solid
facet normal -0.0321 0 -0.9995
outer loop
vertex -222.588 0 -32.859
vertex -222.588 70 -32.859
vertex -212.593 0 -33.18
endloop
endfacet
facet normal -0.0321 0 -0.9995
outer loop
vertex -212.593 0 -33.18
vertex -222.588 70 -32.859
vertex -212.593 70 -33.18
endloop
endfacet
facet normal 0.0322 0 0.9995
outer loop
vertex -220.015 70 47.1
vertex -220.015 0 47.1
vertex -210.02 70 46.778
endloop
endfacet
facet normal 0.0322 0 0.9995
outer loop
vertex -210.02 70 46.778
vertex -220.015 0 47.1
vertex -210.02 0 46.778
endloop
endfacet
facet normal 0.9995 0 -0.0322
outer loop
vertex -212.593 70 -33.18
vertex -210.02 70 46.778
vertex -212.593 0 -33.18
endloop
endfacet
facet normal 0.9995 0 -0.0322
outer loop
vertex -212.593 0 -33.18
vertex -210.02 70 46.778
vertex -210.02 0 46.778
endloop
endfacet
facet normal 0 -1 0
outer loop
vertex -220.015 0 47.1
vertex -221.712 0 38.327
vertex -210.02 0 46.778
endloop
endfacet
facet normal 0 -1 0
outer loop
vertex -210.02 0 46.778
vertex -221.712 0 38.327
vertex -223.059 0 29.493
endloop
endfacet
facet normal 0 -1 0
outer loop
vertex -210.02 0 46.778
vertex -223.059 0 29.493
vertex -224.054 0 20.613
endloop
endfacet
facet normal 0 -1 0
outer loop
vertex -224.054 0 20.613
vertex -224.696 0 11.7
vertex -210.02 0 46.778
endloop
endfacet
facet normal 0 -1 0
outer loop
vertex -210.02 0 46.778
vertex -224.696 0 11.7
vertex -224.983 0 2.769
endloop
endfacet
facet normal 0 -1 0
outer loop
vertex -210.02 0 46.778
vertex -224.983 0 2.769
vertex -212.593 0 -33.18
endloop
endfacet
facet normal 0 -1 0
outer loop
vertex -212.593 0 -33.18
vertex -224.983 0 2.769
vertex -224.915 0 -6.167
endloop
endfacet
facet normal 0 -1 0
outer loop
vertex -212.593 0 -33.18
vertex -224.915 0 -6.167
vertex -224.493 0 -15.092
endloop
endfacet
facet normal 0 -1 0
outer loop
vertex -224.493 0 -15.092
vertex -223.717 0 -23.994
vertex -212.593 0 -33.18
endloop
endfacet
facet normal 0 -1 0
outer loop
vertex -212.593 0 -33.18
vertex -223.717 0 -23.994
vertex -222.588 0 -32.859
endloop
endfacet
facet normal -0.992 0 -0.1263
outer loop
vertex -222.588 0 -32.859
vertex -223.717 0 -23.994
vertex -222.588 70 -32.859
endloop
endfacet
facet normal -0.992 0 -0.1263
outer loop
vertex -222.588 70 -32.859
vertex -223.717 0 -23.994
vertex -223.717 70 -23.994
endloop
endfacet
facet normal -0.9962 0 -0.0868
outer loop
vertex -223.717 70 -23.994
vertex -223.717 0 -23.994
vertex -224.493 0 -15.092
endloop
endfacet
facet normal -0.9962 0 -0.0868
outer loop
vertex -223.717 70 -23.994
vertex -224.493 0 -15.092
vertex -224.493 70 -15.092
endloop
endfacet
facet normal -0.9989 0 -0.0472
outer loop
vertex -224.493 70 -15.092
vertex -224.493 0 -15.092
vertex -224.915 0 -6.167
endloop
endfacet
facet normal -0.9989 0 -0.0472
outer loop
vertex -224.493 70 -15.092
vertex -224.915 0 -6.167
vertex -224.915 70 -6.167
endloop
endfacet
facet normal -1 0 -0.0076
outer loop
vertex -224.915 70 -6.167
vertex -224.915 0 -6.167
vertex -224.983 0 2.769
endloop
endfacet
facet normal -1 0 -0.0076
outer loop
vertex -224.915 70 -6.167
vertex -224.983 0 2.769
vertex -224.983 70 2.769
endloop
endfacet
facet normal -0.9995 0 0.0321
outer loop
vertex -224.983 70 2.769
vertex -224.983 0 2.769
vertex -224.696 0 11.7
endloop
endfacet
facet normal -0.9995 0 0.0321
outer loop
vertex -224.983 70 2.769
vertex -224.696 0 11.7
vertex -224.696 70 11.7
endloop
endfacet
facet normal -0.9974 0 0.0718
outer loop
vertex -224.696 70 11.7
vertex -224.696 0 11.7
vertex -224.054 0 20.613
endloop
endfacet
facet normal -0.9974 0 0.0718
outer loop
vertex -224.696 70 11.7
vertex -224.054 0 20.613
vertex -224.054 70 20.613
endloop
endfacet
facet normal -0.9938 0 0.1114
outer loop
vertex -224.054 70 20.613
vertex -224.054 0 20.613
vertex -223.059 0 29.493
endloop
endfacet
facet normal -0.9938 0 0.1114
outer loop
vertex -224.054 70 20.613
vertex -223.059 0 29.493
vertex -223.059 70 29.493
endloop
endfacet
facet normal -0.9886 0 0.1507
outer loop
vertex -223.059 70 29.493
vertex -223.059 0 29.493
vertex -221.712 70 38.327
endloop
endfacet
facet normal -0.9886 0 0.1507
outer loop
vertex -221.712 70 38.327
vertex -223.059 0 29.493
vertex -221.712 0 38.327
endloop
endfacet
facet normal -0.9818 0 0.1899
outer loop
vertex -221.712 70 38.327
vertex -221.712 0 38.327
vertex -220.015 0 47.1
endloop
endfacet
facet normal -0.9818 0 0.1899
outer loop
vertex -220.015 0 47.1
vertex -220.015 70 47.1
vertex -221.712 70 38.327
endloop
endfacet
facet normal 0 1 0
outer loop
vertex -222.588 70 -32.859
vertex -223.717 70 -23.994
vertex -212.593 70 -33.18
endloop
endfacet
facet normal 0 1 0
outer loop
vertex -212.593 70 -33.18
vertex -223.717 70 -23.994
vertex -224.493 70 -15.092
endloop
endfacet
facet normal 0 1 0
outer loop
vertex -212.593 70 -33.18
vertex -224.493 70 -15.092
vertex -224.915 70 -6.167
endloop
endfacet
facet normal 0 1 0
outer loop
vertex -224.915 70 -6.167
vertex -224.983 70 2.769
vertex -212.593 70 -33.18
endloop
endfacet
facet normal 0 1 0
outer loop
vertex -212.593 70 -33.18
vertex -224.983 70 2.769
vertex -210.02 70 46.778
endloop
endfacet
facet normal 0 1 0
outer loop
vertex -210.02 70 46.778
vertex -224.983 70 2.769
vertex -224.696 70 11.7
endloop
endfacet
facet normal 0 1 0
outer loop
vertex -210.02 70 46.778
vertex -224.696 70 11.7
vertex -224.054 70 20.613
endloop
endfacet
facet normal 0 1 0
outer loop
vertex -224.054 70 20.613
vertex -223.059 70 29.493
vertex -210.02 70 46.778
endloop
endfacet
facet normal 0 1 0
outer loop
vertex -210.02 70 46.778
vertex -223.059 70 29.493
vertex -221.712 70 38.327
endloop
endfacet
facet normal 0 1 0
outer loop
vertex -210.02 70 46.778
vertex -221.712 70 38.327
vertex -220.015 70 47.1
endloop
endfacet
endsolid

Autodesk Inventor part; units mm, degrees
ref_plane "YZ Plane" through (0, 0, 0) normal (1, 0, 0) x (0, 1, 0)
ref_plane "XZ Plane" through (0, 0, 0) normal (0, 1, 0) x (-1, 0, 0)
sketch "Sketch1" plane through (0, 0, 0) normal (0, 1, 0) x (-1, 0, 0)
  point P0 (0, 0)
sketch "Sketch2" plane through (0, 0, 0) normal (0, 1, 0) x (-1, 0, 0)
  circle A0 centre (0, 0) radius 225
  dimension "d0" = 450
extrude "Extrusion1" add sketch "Sketch2" along normal blind 70
sketch "Sketch3" plane through (0, 70, 0) normal (0, 1, 0) x (1, 0, 0)
  circle A0 centre (0, 0) radius 225 projected
  line L0 (-222.5878, 32.8586) -> (-220.015, -47.1001)
  dimension "d3" = 80
split body "Split1" sketch "Sketch3" result one side removed curves L0 removed pieces at (-39.9451, 0.5, -49.4831)
sketch "Sketch4" plane through (-220.015, 0, 47.1001) normal (0.9994827, 0, -0.03216) x (-0.03216, 0, -0.9994827)
  line L0 (80, 70) -> (0, 70) projected
  line L1 (0, 70) -> (80, 70)
  line L2 (80, 70) -> (80, 0)
  line L3 (80, 0) -> (0, 0)
  line L4 (0, 0) -> (0, 70)
  point P0 (40, 0)
extrude "Extrusion2" add sketch "Sketch4" along normal blind 10
sketch "Sketch5" plane through (-210.0201, 0, 46.7785) normal (0.9994827, 0, -0.03216) x (-0.03216, 0, -0.9994827)
  point P0 (40, 0)
ref_plane "Work Plane1" through (-224.8836, 0, 7.236) normal (0.9994827, 0, -0.03216) x (0, 1, 0)
properties part number "Speaker Mount 1"
